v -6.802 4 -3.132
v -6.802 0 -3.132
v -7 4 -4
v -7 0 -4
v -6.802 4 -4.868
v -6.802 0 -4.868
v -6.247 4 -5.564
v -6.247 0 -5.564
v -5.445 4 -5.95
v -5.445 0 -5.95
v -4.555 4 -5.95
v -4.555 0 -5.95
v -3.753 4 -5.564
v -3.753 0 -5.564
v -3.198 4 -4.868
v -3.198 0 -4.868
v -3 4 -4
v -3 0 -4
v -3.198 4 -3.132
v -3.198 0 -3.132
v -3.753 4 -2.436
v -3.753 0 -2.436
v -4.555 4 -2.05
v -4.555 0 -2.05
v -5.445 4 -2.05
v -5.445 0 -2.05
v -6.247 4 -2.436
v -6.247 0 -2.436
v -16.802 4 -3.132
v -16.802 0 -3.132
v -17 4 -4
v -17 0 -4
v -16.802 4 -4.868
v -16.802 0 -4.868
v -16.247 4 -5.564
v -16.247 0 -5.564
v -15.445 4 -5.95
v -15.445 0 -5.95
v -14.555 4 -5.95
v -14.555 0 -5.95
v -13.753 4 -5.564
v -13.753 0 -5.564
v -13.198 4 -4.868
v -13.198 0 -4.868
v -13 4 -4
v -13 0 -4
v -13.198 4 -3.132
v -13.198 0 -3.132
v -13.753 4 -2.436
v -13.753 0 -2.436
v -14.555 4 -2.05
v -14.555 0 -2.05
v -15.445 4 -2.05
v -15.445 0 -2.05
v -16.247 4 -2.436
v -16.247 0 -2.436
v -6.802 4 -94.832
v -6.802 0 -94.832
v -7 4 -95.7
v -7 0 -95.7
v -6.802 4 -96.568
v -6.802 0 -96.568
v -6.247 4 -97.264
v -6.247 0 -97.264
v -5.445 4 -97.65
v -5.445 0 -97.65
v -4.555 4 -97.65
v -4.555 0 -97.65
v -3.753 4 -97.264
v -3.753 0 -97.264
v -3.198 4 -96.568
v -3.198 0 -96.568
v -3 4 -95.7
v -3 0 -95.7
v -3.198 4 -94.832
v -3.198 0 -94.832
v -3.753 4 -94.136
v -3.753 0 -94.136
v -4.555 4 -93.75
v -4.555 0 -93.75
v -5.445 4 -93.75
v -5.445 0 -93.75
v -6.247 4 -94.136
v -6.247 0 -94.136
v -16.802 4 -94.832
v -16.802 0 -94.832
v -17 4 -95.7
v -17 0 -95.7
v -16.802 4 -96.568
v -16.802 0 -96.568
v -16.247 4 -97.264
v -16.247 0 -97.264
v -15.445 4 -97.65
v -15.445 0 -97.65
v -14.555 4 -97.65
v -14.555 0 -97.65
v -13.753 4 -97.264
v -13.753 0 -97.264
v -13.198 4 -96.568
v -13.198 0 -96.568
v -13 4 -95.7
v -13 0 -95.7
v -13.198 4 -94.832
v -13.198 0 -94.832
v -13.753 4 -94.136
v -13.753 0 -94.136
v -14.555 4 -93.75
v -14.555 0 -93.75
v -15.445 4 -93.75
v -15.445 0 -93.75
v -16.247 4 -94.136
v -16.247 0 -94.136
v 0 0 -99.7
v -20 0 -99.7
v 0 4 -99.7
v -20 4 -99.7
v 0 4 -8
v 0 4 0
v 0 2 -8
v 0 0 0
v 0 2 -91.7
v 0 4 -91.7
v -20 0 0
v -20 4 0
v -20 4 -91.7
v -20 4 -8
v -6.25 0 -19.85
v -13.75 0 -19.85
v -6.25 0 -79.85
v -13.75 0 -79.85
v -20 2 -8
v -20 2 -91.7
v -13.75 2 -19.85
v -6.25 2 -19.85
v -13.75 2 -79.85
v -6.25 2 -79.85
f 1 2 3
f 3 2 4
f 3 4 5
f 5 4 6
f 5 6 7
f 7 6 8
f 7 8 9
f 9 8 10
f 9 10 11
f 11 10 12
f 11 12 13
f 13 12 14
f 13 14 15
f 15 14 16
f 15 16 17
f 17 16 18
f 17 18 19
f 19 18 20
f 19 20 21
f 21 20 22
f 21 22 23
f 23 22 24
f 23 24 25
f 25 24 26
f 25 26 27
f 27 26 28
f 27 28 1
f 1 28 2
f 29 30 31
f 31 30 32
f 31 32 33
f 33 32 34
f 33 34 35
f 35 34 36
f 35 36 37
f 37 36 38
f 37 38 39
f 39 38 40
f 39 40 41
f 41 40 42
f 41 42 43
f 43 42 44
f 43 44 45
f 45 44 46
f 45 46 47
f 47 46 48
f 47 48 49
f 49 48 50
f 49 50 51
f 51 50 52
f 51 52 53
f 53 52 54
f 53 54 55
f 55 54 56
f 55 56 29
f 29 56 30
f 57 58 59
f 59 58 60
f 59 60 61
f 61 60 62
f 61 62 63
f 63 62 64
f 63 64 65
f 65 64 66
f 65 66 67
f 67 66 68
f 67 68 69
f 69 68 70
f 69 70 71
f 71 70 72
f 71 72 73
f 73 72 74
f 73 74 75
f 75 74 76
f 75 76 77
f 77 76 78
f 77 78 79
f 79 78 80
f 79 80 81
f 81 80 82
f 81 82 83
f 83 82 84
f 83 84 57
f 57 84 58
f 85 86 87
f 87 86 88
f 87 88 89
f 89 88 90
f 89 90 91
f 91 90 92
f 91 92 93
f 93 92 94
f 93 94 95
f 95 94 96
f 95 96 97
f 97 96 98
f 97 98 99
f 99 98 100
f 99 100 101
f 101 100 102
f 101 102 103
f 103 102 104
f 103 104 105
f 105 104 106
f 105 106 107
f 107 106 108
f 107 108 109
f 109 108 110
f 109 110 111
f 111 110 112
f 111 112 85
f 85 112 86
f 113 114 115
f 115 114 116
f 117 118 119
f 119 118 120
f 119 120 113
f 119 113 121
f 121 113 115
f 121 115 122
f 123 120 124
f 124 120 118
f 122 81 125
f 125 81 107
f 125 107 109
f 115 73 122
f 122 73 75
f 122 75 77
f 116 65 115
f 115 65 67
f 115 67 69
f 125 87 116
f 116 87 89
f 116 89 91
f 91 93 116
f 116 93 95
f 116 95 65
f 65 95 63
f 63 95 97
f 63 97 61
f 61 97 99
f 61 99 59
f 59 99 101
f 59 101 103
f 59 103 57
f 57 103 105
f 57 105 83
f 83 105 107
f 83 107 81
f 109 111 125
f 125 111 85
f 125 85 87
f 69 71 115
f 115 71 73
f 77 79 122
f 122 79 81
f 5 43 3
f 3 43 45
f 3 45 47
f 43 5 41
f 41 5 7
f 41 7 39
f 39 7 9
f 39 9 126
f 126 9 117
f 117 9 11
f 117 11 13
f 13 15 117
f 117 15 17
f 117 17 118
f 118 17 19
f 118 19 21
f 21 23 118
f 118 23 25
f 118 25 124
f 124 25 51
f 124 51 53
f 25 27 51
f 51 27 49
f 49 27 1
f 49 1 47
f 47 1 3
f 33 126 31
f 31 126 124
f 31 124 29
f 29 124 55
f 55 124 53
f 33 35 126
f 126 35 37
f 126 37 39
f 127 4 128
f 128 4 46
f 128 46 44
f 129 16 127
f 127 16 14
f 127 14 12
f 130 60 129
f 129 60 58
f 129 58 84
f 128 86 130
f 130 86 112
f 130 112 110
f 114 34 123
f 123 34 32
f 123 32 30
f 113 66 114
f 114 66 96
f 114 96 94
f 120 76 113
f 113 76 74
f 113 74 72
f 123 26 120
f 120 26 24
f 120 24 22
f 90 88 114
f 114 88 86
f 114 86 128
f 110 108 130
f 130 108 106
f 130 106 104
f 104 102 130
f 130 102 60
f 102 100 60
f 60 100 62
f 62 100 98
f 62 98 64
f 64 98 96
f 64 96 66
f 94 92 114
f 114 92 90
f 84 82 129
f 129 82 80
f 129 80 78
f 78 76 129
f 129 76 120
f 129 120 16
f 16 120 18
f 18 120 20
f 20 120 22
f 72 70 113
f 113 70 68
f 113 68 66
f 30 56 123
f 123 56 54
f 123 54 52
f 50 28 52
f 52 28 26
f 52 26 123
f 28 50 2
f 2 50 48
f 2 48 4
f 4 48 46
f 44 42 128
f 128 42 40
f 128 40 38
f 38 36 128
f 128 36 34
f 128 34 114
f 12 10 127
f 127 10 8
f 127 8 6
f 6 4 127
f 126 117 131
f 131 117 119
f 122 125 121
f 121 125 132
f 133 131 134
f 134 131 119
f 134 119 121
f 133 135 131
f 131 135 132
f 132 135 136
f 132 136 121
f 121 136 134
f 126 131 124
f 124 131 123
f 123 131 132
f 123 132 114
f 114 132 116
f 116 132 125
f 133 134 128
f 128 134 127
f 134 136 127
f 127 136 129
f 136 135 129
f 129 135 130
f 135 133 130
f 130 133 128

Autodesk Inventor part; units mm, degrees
ref_plane "YZ Plane" through (0, 0, 0) normal (1, 0, 0) x (0, 1, 0)
ref_plane "XZ Plane" through (0, 0, 0) normal (0, 1, 0) x (-1, 0, 0)
ref_plane "XY Plane" through (0, 0, 0) normal (0, 0, 1) x (1, 0, 0)
sketch "Sketch1" plane through (0, 0, 0) normal (0, 1, 0) x (-1, 0, 0)
  line L0 (0, 0) -> (20, 0)
  line L1 (20, 0) -> (20, -99.7)
  line L2 (20, -99.7) -> (0, -99.7)
  line L3 (0, -99.7) -> (0, 0)
  line L4 (0, 0) -> (5, 0)
  line L5 (5, 0) -> (5, -4)
  line L6 (5, -4) -> (0, -4)
  line L7 (0, -4) -> (0, 0)
  line L8 (0, -99.7) -> (5, -99.7)
  line L9 (5, -99.7) -> (5, -95.7)
  line L10 (5, -95.7) -> (0, -95.7)
  line L11 (0, -95.7) -> (0, -99.7)
  line L12 (5, -4) -> (15, -4)
  line L13 (5, -95.7) -> (15, -95.7)
  circle A0 centre (15, -4) radius 2
  circle A1 centre (5, -4) radius 2
  circle A2 centre (15, -95.7) radius 2
  circle A3 centre (5, -95.7) radius 2
  dimension "d0" = 20
  dimension "d1" = 99.7
  dimension "d2" = 5
  dimension "d3" = 4
  dimension "d4" = 5
  dimension "d5" = 4
  dimension "d6" = 10
  dimension "d7" = 10
  dimension "d8" = 4
  dimension "d9" = 4
  dimension "d10" = 4
  dimension "d11" = 4
extrude "Extrusion1" add sketch "Sketch1" along normal blind 4 contours L0 L5 A1 L6 L3 | L0 L1 L2 L9 A3 L10 L3 L6 A1 L5 | L10 A3 L9 L2 L3
sketch "Sketch2" plane through (0, 4, 0) normal (0, 1, 0) x (1, 0, 0)
  line L0 (-20, 99.7) -> (-20, 0) projected
  line L1 (0, 0) -> (0, 99.7) projected
  line L2 (-20, 0) -> (0, 0)
  line L3 (0, 0) -> (0, 8)
  line L4 (0, 8) -> (-20, 8)
  line L5 (-20, 8) -> (-20, 0)
  line L6 (0, 99.7) -> (-20, 99.7) projected
  line L7 (-20, 99.7) -> (0, 99.7)
  line L8 (0, 99.7) -> (0, 91.7)
  line L9 (0, 91.7) -> (-20, 91.7)
  line L10 (-20, 91.7) -> (-20, 99.7)
  line L11 (-20, 91.7) -> (0, 91.7)
  line L12 (0, 91.7) -> (0, 8)
  line L13 (0, 8) -> (-20, 8)
  line L14 (-20, 8) -> (-20, 91.7)
  dimension "d14" = 8
  dimension "d15" = 8
sketch "Sketch3" plane through (0, 4, 0) normal (0, 1, 0) x (1, 0, 0)
  point P0 (0, 0)
extrude "Extrusion2" cut sketch "Sketch2" against normal blind 2 contours L9 L1 L4 L0
sketch "Sketch4" plane through (0, 2, 0) normal (0, 1, 0) x (1, 0, 0)
  line L0 (-20, 8) -> (-20, 91.7) projected
  line L1 (-20, 49.85) -> (-10, 49.85)
  line L2 (-13.75, 19.85) -> (-6.25, 19.85)
  line L3 (-6.25, 19.85) -> (-6.25, 79.85)
  line L4 (-6.25, 79.85) -> (-13.75, 79.85)
  line L5 (-13.75, 79.85) -> (-13.75, 19.85)
  line L6 (-13.75, 19.85) -> (-6.25, 79.85) construction
  line L7 (-6.25, 19.85) -> (-13.75, 79.85) construction
  point P0 (0, 0)
  dimension "d18" = 10
  dimension "d19" = 7.5
  dimension "d20" = 60
extrude "Extrusion3" cut sketch "Sketch4" against normal blind 2
properties part number "servo2servo_support"
